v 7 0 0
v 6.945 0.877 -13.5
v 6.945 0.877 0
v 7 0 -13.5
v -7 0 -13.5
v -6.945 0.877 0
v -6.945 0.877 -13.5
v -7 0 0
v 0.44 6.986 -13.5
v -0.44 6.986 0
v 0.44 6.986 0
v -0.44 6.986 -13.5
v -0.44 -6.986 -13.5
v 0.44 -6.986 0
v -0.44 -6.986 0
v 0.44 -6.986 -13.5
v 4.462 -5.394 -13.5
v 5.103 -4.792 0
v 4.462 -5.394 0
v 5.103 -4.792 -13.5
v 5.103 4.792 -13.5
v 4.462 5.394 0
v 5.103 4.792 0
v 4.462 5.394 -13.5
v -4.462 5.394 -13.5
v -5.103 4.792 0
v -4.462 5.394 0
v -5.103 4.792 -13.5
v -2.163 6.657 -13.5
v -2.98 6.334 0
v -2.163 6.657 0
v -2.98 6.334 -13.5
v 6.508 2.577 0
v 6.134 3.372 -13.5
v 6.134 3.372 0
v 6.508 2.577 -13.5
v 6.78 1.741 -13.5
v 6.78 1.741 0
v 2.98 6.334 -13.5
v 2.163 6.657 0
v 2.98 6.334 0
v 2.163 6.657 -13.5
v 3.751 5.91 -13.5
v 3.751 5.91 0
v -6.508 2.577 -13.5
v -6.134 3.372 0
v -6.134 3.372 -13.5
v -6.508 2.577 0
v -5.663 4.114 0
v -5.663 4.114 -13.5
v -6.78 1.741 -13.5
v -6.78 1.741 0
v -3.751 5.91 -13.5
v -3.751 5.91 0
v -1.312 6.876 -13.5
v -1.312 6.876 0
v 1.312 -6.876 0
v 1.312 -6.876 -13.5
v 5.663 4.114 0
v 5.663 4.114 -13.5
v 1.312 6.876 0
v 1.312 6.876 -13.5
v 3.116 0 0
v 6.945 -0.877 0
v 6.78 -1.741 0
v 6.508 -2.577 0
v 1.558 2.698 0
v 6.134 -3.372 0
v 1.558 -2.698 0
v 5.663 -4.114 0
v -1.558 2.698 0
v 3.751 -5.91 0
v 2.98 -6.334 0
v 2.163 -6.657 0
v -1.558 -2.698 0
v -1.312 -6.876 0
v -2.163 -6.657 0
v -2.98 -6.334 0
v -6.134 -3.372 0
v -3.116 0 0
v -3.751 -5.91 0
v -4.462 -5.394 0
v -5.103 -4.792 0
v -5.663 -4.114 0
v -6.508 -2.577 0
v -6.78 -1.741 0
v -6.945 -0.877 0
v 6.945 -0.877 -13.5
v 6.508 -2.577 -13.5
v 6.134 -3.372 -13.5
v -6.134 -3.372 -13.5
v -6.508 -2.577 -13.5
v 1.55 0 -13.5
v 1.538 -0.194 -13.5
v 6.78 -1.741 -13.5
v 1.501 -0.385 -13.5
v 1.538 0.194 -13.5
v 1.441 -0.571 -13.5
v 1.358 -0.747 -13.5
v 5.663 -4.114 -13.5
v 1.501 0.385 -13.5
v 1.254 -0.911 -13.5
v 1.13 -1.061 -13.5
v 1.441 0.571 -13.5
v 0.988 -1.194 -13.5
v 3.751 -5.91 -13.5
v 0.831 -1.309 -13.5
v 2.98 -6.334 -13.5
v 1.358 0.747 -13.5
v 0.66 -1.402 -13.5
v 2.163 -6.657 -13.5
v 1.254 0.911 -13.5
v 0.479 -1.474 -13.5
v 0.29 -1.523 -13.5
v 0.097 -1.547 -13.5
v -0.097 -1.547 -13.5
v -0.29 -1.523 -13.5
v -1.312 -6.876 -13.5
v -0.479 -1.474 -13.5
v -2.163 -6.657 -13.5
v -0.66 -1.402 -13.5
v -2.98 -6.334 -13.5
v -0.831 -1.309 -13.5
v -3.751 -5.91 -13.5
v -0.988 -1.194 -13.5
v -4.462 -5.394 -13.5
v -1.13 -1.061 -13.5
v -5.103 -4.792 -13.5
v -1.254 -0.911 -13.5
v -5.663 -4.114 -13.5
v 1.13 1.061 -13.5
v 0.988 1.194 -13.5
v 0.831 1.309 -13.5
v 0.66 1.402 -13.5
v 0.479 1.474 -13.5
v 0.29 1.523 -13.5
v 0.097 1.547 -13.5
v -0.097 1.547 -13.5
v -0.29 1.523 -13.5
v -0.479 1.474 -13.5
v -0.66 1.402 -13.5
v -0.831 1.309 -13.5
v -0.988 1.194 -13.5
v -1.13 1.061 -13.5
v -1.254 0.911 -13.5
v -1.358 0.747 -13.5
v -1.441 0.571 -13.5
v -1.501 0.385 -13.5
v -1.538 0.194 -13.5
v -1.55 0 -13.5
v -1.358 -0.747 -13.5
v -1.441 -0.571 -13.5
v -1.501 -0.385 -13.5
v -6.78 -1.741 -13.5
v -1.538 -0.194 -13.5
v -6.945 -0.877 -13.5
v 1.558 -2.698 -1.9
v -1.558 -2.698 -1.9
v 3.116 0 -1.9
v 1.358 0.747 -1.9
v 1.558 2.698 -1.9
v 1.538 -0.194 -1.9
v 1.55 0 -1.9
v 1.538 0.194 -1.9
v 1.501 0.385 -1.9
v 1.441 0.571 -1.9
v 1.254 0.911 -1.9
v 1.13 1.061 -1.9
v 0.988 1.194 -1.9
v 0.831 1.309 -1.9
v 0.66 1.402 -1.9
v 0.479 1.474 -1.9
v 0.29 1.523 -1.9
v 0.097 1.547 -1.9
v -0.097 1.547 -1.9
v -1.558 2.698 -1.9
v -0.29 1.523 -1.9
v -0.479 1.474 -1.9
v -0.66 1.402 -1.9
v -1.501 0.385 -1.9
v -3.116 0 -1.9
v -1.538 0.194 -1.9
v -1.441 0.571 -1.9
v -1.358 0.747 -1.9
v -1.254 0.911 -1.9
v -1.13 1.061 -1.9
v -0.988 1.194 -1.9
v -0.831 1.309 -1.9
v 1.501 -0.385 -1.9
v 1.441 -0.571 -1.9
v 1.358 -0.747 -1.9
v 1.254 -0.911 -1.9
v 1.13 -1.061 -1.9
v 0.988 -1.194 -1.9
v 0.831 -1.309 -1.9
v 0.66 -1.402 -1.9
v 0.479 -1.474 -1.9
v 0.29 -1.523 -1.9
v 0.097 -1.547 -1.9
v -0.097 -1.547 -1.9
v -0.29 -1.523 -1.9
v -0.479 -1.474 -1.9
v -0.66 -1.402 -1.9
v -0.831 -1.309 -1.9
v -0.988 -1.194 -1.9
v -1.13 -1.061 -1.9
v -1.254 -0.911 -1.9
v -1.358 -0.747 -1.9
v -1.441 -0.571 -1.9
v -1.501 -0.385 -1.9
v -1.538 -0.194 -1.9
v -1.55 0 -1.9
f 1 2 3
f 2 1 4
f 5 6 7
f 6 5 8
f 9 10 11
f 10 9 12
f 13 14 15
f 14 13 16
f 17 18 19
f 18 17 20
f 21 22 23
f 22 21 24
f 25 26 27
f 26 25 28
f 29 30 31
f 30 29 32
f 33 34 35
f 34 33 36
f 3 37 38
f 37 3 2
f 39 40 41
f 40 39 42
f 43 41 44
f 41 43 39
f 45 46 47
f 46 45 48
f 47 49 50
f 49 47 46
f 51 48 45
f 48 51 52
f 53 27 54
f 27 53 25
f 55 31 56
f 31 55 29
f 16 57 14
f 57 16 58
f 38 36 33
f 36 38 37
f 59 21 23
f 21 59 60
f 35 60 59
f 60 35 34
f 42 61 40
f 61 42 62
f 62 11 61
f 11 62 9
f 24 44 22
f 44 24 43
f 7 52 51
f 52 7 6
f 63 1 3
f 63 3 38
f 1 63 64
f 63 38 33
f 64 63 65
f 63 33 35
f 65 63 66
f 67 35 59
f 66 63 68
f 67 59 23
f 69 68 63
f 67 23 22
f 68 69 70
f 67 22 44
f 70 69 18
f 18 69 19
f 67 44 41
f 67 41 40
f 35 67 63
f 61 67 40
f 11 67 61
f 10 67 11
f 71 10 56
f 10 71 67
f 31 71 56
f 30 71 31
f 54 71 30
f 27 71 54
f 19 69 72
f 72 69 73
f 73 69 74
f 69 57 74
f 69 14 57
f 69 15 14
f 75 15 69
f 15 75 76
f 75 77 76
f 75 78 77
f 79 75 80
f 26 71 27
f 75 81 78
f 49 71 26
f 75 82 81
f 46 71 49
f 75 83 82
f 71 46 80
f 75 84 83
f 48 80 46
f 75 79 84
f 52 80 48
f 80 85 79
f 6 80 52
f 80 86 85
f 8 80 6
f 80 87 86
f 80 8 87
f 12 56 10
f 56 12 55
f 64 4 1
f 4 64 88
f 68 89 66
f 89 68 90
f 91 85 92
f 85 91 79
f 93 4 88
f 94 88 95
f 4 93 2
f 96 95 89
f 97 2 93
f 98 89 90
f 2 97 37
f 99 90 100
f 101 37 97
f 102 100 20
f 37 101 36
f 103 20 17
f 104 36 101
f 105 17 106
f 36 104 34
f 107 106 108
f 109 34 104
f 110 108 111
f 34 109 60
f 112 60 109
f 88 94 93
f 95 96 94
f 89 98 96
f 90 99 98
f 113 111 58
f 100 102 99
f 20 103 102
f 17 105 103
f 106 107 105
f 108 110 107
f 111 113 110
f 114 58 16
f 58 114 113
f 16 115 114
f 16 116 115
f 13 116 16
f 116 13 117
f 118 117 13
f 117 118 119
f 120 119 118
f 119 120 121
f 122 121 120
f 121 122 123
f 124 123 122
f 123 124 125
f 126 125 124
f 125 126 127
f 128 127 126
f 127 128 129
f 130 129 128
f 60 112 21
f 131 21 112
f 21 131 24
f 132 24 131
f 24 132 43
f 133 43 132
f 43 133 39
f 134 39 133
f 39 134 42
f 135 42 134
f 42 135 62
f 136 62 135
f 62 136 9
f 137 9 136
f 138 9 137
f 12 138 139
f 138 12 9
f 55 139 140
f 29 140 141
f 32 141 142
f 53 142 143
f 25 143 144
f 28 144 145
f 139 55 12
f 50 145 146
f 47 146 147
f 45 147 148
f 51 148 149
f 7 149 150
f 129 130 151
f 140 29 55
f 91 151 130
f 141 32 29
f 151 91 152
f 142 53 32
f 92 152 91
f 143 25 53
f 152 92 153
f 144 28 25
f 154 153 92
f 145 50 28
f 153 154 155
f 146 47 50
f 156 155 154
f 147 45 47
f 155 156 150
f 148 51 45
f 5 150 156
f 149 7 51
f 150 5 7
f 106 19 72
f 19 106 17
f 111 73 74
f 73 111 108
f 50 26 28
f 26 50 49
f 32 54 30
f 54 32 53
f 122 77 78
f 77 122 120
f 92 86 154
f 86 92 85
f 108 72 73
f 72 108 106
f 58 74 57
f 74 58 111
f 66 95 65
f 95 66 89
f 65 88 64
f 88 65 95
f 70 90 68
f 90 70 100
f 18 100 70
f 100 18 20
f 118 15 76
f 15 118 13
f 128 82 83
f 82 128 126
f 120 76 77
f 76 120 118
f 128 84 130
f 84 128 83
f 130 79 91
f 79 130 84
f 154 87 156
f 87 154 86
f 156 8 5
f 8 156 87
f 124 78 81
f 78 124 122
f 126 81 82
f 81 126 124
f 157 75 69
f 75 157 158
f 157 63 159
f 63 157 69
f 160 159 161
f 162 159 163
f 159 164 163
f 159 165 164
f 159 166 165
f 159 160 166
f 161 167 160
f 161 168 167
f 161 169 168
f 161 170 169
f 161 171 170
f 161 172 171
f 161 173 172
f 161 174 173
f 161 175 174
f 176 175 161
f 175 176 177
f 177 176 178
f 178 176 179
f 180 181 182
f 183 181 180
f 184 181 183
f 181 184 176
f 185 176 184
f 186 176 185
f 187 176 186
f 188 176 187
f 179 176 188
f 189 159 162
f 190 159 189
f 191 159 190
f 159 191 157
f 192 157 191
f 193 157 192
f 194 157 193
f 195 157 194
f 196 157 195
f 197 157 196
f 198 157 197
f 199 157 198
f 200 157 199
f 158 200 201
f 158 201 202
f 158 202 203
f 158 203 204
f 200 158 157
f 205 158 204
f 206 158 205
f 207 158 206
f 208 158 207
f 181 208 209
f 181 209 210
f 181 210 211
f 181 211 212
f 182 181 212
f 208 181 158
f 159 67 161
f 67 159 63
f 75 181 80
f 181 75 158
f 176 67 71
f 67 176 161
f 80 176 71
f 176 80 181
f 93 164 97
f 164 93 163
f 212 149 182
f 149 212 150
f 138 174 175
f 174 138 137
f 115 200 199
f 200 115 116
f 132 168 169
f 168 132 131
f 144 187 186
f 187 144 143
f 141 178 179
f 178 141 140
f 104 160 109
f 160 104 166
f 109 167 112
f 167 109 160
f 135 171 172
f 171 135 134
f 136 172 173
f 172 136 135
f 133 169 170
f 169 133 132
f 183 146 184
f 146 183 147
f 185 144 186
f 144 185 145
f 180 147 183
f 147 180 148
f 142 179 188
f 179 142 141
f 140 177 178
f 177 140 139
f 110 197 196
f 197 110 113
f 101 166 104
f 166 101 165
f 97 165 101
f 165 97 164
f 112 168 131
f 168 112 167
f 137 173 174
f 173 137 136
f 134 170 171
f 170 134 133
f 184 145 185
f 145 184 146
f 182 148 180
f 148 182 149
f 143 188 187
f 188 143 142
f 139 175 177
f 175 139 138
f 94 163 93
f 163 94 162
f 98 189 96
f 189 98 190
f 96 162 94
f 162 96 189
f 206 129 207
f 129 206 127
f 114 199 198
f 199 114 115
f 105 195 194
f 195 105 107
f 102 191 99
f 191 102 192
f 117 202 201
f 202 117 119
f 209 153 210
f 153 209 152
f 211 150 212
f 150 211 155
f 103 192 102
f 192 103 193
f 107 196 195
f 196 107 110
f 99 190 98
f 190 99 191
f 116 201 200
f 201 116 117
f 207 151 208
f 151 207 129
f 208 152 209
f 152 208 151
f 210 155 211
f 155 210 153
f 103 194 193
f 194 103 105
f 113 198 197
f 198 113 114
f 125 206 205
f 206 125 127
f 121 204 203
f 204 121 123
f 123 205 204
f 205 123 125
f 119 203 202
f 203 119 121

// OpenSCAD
$fn = 50;


difference() {
	union() {
		translate(v = [0, 0, -13.5000000000]) {
			cylinder(h = 13.5000000000, r = 7.0000000000);
		}
		translate(v = [0, 0, -12.0000000000]) {
			cylinder(h = 12, r = 2.8750000000);
		}
	}
	union() {
		translate(v = [0, 0, 0]) {
			rotate(a = [0, 0, 0]) {
				difference() {
					union() {
						translate(v = [0, 0, -1.9000000000]) {
							linear_extrude(height = 1.9000000000) {
								polygon(points = [[3.1158000000, 0.0000000000], [1.5579000000, 2.6983619531], [-1.5579000000, 2.6983619531], [-3.1158000000, 0.0000000000], [-1.5579000000, -2.6983619531], [1.5579000000, -2.6983619531]]);
							}
						}
					}
					union();
				}
			}
		}
		#translate(v = [0, 0, -100.0000000000]) {
			cylinder(h = 200, r = 1.5500000000);
		}
	}
}
